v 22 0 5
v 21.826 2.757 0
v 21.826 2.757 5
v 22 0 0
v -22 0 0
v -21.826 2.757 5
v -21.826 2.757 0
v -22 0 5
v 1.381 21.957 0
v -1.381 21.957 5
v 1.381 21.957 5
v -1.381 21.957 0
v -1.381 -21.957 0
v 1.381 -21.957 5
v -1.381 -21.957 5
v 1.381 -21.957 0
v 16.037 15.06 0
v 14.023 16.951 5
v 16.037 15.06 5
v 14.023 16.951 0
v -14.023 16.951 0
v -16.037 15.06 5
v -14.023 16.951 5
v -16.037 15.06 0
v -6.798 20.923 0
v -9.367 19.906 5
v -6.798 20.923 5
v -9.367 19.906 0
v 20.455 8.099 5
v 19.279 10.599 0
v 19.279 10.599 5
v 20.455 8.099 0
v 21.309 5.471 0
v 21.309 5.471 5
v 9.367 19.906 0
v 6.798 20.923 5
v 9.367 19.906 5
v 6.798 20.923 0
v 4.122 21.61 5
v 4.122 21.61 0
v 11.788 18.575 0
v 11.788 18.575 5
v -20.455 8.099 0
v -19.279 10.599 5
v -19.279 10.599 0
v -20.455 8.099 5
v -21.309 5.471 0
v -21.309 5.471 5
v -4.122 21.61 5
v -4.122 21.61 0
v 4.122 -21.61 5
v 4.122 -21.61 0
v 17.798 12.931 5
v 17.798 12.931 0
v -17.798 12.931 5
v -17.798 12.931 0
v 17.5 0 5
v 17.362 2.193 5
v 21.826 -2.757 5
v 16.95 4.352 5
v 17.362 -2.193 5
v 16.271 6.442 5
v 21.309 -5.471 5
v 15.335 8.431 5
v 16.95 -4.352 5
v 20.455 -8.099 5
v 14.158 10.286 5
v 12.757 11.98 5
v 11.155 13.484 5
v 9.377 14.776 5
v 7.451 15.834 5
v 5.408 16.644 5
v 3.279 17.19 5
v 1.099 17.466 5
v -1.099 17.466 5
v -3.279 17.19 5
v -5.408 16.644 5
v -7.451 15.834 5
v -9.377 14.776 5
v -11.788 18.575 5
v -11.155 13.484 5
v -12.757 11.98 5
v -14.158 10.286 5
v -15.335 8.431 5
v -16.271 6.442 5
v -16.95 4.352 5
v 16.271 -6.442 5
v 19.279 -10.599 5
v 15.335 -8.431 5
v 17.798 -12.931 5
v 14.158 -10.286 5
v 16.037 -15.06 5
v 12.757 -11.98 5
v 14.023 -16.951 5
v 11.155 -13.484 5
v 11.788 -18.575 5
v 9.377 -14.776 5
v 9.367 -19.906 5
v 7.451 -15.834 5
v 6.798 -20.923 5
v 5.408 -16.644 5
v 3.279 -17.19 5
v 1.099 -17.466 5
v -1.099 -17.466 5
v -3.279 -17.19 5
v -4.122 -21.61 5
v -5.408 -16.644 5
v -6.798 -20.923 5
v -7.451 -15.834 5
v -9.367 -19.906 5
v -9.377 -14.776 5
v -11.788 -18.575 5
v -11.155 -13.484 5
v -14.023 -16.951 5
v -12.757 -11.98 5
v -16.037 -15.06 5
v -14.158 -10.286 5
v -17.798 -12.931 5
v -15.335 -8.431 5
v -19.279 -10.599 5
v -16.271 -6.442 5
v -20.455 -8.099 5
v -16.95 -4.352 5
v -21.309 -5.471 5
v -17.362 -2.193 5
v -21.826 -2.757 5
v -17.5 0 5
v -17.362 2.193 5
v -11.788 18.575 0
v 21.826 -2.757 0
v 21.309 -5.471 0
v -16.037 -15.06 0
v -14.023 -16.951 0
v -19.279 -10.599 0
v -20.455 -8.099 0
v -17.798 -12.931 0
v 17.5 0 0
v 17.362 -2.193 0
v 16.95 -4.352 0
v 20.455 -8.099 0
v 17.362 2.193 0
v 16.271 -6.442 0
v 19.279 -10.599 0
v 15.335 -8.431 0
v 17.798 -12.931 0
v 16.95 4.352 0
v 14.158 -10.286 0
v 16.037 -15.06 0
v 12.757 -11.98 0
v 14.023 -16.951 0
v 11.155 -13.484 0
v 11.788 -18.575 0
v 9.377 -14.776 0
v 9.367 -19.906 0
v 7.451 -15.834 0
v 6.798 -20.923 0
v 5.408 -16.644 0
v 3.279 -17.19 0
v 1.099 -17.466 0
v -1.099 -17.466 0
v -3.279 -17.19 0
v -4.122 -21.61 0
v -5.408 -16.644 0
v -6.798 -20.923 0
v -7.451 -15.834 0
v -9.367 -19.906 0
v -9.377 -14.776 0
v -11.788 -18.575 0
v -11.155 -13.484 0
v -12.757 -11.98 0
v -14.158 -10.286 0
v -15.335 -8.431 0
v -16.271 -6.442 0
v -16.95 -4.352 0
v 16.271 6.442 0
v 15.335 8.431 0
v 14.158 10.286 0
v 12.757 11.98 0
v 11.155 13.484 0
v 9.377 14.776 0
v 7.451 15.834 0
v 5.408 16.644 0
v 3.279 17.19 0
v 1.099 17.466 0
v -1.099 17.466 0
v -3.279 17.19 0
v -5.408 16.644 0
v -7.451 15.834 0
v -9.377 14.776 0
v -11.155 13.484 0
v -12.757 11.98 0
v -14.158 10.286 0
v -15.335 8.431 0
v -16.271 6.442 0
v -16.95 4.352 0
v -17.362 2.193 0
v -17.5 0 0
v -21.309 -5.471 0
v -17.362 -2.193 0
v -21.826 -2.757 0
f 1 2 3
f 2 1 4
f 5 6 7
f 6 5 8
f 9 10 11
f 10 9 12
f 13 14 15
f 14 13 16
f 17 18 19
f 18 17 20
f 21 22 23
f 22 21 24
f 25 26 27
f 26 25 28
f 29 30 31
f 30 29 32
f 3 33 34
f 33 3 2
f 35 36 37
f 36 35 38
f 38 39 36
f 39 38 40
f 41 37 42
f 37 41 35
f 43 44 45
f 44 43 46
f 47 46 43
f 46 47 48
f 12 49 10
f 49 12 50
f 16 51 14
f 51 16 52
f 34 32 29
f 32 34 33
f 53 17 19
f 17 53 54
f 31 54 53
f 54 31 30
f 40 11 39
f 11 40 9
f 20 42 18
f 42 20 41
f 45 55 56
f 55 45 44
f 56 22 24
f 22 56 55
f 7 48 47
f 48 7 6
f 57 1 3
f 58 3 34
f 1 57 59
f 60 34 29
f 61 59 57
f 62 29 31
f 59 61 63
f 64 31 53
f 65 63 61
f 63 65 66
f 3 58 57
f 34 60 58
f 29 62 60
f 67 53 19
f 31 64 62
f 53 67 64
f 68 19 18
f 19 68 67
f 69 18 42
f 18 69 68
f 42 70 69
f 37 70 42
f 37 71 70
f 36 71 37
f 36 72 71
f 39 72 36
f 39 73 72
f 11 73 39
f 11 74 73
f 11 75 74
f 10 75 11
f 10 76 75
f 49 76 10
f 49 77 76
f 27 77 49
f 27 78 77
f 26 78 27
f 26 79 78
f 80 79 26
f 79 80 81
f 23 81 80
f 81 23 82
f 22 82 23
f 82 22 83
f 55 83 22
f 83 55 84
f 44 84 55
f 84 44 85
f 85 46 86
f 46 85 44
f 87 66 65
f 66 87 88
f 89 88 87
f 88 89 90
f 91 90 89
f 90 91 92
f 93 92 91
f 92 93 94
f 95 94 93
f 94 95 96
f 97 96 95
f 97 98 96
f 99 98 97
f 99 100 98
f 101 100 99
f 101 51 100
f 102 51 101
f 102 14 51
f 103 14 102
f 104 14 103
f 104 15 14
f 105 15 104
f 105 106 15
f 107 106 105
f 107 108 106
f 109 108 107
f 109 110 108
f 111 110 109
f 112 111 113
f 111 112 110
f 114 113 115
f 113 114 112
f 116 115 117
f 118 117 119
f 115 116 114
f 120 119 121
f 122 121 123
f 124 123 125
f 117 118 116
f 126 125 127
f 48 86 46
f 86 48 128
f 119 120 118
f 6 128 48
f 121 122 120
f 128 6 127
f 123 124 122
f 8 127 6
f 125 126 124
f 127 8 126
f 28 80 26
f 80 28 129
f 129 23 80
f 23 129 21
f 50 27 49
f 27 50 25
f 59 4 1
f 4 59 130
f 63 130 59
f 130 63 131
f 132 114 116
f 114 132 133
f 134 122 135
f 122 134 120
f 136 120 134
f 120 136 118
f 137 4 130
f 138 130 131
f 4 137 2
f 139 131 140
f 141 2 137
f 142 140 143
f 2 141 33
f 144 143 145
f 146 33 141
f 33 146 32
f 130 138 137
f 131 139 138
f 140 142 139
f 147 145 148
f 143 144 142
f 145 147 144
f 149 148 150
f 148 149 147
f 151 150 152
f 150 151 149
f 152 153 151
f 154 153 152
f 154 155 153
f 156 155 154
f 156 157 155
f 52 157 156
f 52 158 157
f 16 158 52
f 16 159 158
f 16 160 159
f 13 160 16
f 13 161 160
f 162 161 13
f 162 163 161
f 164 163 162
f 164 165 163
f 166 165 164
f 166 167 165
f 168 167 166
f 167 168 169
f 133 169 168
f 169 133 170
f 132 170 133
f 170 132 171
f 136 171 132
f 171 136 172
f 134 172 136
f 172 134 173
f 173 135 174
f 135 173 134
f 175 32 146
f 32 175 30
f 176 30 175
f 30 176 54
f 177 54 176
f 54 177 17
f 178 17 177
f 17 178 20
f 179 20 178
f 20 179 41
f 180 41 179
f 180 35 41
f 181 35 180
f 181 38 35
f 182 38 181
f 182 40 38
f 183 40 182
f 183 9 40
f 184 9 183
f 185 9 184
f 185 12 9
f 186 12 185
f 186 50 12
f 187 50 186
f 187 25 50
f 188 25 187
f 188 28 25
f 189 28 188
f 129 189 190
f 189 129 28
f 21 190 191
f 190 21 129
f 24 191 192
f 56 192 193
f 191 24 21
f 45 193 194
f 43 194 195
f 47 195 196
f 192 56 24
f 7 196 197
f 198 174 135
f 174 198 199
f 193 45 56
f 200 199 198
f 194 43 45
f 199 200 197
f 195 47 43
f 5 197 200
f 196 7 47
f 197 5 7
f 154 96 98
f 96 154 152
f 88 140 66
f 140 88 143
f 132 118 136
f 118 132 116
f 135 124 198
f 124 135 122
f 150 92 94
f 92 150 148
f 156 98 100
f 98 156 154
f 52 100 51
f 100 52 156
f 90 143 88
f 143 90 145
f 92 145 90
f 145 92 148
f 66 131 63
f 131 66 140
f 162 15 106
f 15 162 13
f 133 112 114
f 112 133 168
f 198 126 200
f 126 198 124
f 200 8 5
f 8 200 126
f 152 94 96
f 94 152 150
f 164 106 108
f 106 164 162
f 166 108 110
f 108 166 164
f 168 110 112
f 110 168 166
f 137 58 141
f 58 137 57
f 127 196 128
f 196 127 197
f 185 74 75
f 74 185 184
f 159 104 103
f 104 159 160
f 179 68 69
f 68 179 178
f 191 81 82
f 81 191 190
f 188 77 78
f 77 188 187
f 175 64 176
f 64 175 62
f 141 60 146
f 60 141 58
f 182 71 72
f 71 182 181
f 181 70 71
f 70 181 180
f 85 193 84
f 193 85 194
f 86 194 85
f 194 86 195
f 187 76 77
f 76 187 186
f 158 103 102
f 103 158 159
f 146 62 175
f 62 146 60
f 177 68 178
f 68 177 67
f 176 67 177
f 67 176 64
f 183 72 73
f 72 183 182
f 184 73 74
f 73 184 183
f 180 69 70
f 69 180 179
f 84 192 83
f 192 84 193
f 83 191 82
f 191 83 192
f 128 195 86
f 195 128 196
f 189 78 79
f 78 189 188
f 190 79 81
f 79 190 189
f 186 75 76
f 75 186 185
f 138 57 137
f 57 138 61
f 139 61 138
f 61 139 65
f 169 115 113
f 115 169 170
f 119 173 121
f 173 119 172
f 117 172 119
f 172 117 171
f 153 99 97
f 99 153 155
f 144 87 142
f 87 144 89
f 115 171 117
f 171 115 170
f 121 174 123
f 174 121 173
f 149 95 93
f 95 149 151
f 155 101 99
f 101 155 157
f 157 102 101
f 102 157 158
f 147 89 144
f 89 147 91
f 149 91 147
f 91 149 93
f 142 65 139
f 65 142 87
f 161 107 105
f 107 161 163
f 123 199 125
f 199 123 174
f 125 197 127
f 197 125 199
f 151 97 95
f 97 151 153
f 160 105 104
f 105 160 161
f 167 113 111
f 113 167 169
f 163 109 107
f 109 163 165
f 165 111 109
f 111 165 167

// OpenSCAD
$fn = 50;


difference() {
	union() {
		translate(v = [0, 0, 0]) {
			rotate(a = [0, 0, 0]) {
				cylinder(h = 5, r = 22.0000000000);
			}
		}
	}
	union() {
		translate(v = [0, 0, 0]) {
			rotate(a = [0, 0, 0]) {
				cylinder(h = 5, r = 17.5000000000);
			}
		}
	}
}
